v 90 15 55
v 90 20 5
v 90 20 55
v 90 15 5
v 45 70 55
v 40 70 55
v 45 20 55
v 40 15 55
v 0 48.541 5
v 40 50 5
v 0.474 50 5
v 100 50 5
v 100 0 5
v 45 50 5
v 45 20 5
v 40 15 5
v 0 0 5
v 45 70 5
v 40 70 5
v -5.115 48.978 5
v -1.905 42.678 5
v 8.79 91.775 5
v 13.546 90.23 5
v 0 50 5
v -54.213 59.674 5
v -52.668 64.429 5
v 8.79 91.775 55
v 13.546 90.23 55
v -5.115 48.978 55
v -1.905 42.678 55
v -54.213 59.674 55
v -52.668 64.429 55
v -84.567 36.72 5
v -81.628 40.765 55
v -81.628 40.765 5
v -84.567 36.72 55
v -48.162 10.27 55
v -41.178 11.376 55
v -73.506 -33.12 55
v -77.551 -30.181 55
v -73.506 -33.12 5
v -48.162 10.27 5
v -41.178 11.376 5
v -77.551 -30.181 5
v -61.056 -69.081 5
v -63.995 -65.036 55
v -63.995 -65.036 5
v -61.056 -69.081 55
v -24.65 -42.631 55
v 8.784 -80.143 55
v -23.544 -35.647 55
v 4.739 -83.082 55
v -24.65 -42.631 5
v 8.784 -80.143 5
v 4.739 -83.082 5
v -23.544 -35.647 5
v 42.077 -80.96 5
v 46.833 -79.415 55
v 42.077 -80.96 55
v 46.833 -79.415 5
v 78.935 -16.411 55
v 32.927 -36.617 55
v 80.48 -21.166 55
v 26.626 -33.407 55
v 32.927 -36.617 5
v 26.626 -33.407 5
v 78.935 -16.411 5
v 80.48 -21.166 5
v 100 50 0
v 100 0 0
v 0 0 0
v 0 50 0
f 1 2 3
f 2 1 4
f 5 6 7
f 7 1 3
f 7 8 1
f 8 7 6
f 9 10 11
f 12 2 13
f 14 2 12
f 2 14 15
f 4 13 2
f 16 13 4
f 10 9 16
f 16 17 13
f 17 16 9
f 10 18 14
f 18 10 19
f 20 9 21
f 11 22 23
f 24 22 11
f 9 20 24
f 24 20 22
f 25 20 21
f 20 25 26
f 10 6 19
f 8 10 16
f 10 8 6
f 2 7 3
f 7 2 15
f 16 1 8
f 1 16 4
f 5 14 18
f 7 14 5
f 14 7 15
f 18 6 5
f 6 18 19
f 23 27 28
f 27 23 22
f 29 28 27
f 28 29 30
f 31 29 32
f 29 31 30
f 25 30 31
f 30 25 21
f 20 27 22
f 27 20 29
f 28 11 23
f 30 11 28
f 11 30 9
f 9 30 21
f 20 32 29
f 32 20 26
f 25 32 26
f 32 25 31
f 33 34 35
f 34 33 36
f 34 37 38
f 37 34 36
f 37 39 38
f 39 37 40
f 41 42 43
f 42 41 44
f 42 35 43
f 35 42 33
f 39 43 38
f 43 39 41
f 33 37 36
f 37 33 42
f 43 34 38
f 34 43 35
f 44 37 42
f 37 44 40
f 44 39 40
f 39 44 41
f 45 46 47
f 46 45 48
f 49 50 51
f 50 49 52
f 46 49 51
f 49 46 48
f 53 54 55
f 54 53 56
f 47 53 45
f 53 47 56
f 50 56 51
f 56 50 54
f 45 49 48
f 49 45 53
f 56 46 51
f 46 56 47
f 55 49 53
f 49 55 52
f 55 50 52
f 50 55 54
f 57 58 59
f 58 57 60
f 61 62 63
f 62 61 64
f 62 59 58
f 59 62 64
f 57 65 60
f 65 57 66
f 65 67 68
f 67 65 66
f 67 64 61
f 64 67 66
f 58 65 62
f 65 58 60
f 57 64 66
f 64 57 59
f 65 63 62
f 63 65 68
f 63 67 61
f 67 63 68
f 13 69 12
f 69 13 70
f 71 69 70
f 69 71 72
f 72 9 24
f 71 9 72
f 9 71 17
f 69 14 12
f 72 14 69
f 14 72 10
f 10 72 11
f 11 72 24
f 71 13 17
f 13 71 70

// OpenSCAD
// Parameters
plate_length = 100; // Length of the flat plate
plate_width = 50;   // Width of the flat plate
plate_thickness = 5; // Thickness of the flat plate

bracket_length = 50; // Length of one side of the L-shaped bracket
bracket_width = 50;  // Width of the bracket
bracket_thickness = 5; // Thickness of the bracket
bracket_offset = 10; // Offset from the edge of the flat plate

// Flat Plate
module flat_plate() {
    translate([0, 0, 0]) // Ensure the flat plate is perfectly horizontal
        cube([plate_length, plate_width, plate_thickness]);
}

// L-Shaped Bracket
module l_shaped_bracket() {
    union() {
        cube([bracket_length, bracket_thickness, bracket_width]);
        translate([0, bracket_thickness, 0])
            cube([bracket_thickness, bracket_width, bracket_width]);
    }
}

// Assembly
module assembly() {
    // Layer 1: Flat Plate
    translate([0, 0, 0]) // Corrected position to make the flat plate visible
        flat_plate();

    // Layer 2: L-Shaped Brackets
    // Bracket 1
    rotate([0, 0, 0]) // Correct rotation
        translate([plate_length / 2 - bracket_offset, plate_width / 2 - bracket_offset, plate_thickness])
            l_shaped_bracket();

    // Bracket 2
    rotate([0, 0, 72]) // Correct rotation
        translate([plate_length / 2 - bracket_offset, plate_width / 2 - bracket_offset, plate_thickness]) // Adjusted position
            l_shaped_bracket();

    // Bracket 3
    rotate([0, 0, 144]) // Correct rotation
        translate([plate_length / 2 - bracket_offset, plate_width / 2 - bracket_offset, plate_thickness]) // Adjusted to match original spacing
            l_shaped_bracket();

    // Bracket 4
    rotate([0, 0, 216]) // Correct rotation
        translate([plate_length / 2 - bracket_offset, plate_width / 2 - bracket_offset, plate_thickness]) // Adjusted to make it parallel
            l_shaped_bracket();

    // Bracket 5
    rotate([0, 0, 288]) // Correct rotation
        translate([plate_length / 2 - bracket_offset, plate_width / 2 - bracket_offset, plate_thickness]) // Added missing bracket
            l_shaped_bracket();
}

// Render the assembly
assembly();
